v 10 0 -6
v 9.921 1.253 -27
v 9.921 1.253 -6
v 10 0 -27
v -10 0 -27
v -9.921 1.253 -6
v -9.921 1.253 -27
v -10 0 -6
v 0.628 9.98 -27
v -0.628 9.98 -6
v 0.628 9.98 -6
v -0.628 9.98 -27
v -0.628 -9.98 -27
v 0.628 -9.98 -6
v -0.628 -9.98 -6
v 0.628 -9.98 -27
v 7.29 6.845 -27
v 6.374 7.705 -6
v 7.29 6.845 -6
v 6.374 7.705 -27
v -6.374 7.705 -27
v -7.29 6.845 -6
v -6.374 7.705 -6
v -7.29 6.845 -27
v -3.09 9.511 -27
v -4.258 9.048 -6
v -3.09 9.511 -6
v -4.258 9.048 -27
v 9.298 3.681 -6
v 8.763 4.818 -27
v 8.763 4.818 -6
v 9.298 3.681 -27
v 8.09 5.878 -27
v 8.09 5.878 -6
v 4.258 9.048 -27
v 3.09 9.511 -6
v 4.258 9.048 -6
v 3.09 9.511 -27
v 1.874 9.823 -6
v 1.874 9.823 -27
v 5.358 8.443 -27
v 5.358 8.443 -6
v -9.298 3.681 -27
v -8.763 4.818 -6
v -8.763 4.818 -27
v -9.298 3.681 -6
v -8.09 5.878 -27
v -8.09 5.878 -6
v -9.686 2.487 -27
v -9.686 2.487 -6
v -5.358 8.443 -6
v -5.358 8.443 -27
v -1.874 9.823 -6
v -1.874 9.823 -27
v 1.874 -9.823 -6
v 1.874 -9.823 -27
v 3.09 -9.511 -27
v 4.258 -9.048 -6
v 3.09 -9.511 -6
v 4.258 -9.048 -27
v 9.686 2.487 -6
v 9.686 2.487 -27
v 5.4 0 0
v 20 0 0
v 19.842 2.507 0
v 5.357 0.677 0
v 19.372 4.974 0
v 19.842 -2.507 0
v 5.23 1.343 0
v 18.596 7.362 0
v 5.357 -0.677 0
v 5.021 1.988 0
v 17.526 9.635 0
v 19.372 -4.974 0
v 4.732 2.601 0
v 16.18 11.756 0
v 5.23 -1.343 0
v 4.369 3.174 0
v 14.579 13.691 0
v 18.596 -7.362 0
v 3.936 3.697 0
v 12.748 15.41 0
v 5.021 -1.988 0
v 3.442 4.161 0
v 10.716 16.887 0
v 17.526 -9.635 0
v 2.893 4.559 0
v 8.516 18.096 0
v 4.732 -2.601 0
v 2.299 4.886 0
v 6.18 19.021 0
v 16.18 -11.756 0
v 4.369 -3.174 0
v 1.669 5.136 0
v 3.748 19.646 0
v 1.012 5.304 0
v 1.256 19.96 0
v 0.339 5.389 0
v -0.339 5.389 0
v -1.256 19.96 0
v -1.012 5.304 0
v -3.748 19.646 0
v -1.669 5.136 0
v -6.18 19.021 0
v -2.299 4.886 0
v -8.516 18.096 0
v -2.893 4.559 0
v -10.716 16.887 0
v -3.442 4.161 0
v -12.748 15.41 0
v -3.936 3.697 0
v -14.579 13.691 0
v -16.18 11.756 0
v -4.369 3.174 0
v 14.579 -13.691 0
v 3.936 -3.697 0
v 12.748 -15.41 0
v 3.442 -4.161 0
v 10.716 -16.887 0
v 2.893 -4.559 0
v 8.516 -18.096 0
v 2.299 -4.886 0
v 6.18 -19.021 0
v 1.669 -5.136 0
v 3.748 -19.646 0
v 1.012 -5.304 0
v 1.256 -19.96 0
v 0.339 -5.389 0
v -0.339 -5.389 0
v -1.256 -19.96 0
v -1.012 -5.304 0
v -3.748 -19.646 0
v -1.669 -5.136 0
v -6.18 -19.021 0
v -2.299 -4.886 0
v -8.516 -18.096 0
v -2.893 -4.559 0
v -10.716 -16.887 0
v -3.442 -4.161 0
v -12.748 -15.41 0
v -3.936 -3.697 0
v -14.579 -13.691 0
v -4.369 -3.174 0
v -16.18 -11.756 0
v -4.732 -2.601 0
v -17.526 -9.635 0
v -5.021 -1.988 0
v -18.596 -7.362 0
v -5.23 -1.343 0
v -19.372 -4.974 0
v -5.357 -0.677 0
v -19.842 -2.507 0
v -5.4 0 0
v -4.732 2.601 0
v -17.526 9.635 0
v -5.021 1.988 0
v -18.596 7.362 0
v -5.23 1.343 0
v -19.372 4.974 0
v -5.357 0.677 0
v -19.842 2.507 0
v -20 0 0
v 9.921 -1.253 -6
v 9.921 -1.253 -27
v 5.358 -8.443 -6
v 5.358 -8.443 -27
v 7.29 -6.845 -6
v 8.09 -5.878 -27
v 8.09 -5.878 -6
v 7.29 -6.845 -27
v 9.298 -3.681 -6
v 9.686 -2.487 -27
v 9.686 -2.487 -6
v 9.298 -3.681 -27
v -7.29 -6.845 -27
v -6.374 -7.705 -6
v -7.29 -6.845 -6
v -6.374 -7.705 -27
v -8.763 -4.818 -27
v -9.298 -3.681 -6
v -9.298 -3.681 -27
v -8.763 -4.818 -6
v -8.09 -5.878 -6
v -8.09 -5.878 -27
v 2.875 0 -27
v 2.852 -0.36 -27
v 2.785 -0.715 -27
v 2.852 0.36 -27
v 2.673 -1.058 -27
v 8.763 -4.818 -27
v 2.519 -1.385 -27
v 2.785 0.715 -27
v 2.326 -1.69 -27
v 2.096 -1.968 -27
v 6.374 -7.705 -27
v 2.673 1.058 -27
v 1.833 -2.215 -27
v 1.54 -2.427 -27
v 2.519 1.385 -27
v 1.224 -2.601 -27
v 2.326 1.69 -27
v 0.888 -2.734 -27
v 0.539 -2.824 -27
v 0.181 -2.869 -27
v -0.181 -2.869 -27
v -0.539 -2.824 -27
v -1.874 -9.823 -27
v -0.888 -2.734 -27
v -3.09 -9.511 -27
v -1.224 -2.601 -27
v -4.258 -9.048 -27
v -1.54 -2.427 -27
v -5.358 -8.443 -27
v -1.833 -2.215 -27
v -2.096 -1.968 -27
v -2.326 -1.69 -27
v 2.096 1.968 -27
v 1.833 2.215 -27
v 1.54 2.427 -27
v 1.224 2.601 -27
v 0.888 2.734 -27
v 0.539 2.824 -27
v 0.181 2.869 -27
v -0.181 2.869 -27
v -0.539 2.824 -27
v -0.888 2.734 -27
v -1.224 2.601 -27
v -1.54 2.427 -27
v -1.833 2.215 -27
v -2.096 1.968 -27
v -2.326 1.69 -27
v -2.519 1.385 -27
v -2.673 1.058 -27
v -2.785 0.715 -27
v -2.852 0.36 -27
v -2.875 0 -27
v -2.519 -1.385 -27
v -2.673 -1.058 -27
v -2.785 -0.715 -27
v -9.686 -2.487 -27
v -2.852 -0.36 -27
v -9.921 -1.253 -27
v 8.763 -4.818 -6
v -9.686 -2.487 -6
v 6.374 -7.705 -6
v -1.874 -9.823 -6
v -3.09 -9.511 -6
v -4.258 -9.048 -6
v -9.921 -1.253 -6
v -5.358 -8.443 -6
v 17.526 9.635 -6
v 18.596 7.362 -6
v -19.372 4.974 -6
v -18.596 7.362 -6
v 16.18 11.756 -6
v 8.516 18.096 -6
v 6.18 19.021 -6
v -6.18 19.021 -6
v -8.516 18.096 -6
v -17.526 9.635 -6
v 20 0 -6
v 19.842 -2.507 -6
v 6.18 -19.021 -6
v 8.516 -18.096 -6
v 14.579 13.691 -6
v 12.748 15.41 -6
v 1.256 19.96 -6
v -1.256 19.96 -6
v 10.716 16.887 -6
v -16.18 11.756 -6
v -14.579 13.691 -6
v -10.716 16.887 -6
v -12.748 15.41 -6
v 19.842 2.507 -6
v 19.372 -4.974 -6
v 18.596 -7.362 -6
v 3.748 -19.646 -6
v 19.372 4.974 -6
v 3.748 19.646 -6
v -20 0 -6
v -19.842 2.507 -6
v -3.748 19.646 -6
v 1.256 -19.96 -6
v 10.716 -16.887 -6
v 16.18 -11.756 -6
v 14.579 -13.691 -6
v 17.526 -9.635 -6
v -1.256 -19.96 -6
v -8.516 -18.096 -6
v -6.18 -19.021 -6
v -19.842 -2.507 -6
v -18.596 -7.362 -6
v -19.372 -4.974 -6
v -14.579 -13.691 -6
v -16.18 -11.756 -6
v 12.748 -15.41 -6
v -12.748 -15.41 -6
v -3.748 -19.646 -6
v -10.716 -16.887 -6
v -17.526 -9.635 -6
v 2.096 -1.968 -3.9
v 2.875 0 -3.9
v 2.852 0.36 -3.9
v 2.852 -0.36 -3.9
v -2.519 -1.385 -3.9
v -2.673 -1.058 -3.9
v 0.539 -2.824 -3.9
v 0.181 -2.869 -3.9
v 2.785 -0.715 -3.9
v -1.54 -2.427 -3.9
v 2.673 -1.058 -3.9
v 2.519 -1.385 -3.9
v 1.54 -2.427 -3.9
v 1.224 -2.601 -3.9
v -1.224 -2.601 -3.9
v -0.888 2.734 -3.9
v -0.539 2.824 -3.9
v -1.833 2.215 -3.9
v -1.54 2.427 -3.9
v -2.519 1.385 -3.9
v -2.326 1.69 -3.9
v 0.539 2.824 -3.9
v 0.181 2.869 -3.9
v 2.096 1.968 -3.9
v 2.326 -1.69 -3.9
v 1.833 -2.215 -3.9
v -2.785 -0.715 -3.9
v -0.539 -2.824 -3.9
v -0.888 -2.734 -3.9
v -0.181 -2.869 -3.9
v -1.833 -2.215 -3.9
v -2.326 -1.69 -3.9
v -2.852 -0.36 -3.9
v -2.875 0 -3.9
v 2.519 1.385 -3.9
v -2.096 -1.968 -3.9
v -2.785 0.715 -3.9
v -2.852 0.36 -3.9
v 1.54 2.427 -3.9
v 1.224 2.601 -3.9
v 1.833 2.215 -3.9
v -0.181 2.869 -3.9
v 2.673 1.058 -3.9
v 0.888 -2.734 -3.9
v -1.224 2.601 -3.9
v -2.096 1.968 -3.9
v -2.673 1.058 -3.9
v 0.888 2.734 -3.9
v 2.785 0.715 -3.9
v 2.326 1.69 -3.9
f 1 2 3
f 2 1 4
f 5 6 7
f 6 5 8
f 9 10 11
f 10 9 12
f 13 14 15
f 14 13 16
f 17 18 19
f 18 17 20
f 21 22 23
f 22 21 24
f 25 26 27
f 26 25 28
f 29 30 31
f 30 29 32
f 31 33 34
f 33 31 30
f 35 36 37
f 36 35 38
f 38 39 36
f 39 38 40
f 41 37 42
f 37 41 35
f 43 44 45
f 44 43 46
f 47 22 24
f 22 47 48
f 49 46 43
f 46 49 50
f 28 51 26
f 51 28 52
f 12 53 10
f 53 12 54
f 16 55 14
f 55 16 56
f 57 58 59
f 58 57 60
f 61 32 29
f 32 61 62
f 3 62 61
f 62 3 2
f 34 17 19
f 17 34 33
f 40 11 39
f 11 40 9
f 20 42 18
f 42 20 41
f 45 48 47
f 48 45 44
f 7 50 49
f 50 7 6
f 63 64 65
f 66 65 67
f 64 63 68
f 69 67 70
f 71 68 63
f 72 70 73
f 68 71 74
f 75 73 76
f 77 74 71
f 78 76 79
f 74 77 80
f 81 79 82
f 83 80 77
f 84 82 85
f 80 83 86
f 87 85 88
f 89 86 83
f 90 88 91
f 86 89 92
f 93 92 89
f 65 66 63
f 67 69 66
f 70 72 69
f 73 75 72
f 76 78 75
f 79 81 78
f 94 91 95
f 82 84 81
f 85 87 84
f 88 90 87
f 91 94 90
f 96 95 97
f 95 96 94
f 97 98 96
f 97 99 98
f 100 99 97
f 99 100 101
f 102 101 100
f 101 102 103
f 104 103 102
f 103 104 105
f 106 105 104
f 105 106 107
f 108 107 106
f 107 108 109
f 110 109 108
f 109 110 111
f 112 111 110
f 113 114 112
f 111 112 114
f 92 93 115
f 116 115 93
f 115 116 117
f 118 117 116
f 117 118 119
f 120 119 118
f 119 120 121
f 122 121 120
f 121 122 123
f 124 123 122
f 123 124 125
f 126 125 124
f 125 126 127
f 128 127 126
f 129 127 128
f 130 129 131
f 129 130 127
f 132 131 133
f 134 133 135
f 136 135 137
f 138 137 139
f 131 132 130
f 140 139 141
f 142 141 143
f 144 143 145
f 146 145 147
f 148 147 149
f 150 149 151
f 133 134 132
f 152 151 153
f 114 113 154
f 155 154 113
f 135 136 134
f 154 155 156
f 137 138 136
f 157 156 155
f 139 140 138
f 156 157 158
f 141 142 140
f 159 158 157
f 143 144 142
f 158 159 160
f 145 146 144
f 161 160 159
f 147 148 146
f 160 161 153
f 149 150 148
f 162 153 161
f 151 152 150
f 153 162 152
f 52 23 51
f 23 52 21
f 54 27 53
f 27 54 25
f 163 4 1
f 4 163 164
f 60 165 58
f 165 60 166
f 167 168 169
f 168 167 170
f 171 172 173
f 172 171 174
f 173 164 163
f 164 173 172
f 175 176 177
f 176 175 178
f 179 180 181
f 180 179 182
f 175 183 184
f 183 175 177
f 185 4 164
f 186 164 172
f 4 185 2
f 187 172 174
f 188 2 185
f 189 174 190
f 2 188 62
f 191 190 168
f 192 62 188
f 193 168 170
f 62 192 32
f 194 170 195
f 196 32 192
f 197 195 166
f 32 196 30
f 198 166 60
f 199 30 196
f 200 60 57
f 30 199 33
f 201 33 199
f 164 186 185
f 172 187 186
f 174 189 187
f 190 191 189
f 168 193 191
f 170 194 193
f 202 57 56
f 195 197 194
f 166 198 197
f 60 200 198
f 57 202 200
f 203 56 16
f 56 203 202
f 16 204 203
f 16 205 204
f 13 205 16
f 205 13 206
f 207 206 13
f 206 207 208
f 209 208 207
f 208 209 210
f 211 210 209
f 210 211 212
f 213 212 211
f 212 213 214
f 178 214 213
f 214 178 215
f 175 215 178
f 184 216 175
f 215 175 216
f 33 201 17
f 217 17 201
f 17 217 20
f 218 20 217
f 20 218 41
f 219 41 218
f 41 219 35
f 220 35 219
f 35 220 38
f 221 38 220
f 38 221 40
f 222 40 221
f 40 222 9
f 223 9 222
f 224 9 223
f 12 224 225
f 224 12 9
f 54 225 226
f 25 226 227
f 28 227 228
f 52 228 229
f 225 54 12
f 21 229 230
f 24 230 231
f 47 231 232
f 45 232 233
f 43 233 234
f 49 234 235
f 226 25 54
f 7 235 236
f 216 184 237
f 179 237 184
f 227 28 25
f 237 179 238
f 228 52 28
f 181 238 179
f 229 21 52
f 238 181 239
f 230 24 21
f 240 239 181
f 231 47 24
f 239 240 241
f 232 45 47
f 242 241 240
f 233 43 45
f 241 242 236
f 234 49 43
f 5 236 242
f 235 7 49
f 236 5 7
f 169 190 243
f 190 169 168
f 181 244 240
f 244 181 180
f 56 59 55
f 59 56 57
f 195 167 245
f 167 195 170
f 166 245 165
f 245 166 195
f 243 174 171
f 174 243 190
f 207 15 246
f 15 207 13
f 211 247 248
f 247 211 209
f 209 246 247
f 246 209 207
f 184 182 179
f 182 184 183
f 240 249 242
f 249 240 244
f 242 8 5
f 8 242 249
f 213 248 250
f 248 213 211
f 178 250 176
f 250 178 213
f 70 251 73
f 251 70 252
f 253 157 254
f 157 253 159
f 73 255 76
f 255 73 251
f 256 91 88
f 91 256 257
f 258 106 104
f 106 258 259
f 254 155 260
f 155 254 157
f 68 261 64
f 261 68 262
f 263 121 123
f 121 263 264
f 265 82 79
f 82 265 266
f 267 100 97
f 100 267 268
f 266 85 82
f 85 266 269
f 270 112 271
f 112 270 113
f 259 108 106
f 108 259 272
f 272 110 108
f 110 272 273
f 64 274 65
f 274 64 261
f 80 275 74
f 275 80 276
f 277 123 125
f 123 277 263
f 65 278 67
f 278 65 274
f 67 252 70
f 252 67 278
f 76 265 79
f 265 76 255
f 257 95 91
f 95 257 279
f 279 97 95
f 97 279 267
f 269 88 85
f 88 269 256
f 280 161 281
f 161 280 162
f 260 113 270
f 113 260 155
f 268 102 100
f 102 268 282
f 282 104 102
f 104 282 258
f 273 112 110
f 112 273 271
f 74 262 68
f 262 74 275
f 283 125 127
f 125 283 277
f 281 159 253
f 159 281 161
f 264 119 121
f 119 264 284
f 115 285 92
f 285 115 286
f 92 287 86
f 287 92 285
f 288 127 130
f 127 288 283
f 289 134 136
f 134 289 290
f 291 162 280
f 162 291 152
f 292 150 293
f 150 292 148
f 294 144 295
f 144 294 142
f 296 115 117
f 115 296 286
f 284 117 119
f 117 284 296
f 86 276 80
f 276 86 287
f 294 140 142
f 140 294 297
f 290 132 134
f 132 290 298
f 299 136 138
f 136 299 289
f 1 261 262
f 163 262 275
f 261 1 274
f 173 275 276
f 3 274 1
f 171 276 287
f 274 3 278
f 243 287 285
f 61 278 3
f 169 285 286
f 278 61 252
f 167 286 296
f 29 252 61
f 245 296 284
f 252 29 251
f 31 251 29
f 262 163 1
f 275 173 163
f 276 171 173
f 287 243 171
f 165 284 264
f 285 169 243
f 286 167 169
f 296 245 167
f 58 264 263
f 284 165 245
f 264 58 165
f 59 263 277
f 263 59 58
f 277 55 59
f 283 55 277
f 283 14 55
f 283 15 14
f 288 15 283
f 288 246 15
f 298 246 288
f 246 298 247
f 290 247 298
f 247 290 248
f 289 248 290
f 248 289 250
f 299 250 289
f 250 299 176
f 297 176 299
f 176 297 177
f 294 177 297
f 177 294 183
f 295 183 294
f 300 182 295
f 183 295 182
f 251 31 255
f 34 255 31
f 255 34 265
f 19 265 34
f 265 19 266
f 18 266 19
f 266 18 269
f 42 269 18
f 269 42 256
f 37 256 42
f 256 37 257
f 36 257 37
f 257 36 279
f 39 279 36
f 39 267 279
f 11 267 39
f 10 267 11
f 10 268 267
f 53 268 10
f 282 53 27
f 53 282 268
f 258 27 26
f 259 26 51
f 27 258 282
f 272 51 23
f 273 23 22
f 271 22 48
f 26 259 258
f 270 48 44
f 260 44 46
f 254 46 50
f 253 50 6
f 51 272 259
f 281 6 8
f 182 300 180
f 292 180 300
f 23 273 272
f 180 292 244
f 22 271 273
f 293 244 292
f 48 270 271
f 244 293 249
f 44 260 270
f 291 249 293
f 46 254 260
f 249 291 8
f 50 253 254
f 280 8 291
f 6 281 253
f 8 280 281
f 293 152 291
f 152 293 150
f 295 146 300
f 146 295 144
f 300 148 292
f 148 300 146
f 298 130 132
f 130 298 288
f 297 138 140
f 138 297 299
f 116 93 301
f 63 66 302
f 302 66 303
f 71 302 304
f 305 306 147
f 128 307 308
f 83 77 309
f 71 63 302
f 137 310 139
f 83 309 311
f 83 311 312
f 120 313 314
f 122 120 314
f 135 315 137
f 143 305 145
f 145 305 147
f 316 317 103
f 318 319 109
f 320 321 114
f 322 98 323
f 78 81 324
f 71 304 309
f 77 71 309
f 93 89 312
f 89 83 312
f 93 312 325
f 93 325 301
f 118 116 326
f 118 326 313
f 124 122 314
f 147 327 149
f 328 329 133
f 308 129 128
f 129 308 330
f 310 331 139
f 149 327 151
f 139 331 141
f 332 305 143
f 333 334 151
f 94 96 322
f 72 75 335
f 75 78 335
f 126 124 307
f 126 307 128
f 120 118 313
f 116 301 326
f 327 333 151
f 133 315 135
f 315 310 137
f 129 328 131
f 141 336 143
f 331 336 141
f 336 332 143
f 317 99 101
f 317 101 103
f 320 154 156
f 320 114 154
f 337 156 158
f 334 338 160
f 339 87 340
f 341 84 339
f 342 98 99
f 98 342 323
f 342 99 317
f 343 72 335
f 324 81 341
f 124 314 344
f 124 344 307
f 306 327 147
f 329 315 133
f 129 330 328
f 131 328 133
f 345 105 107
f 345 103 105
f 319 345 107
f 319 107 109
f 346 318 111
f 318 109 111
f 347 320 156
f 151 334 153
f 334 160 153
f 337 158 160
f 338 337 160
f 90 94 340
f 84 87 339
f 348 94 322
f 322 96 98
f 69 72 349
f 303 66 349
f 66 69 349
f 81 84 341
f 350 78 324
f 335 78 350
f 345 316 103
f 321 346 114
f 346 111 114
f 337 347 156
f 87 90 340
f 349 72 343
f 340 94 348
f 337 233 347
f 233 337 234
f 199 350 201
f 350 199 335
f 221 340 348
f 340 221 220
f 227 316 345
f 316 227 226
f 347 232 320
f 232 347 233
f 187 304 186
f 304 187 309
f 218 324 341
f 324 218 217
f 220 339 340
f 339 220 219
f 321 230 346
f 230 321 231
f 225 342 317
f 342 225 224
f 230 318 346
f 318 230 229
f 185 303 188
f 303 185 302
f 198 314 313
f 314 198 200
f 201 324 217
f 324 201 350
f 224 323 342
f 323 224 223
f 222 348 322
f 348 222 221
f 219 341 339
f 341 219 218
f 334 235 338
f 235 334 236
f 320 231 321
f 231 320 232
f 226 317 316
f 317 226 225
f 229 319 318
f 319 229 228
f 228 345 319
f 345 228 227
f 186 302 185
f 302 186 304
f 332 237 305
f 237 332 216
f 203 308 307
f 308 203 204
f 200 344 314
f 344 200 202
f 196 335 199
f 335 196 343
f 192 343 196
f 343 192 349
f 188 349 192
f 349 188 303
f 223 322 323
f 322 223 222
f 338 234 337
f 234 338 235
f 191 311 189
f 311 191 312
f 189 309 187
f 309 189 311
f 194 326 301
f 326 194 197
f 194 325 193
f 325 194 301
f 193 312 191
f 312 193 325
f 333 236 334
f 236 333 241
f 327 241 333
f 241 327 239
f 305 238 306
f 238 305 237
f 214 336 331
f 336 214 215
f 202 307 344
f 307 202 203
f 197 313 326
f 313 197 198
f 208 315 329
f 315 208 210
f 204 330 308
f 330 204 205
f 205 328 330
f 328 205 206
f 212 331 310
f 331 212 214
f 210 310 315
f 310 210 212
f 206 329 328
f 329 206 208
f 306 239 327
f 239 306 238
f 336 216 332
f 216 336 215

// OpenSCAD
$fn = 50;


difference() {
	union() {
		translate(v = [0, 0, -27.0000000000]) {
			cylinder(h = 27, r = 10.0000000000);
		}
		translate(v = [0, 0, -6.0000000000]) {
			cylinder(h = 6, r = 20.0000000000);
		}
	}
	union() {
		translate(v = [0, 0, 0]) {
			rotate(a = [0, 0, 0]) {
				difference() {
					union() {
						#translate(v = [0, 0, -27.0000000000]) {
							cylinder(h = 27, r = 2.6000000000);
						}
						#translate(v = [0, 0, -3.9000000000]) {
							cylinder(h = 3.9000000000, r1 = 2.8750000000, r2 = 5.4000000000);
						}
						#translate(v = [0, 0, -27.0000000000]) {
							cylinder(h = 27, r = 2.8750000000);
						}
						#translate(v = [0, 0, -27.0000000000]) {
							cylinder(h = 27, r = 2.6000000000);
						}
					}
					union();
				}
			}
		}
	}
}
